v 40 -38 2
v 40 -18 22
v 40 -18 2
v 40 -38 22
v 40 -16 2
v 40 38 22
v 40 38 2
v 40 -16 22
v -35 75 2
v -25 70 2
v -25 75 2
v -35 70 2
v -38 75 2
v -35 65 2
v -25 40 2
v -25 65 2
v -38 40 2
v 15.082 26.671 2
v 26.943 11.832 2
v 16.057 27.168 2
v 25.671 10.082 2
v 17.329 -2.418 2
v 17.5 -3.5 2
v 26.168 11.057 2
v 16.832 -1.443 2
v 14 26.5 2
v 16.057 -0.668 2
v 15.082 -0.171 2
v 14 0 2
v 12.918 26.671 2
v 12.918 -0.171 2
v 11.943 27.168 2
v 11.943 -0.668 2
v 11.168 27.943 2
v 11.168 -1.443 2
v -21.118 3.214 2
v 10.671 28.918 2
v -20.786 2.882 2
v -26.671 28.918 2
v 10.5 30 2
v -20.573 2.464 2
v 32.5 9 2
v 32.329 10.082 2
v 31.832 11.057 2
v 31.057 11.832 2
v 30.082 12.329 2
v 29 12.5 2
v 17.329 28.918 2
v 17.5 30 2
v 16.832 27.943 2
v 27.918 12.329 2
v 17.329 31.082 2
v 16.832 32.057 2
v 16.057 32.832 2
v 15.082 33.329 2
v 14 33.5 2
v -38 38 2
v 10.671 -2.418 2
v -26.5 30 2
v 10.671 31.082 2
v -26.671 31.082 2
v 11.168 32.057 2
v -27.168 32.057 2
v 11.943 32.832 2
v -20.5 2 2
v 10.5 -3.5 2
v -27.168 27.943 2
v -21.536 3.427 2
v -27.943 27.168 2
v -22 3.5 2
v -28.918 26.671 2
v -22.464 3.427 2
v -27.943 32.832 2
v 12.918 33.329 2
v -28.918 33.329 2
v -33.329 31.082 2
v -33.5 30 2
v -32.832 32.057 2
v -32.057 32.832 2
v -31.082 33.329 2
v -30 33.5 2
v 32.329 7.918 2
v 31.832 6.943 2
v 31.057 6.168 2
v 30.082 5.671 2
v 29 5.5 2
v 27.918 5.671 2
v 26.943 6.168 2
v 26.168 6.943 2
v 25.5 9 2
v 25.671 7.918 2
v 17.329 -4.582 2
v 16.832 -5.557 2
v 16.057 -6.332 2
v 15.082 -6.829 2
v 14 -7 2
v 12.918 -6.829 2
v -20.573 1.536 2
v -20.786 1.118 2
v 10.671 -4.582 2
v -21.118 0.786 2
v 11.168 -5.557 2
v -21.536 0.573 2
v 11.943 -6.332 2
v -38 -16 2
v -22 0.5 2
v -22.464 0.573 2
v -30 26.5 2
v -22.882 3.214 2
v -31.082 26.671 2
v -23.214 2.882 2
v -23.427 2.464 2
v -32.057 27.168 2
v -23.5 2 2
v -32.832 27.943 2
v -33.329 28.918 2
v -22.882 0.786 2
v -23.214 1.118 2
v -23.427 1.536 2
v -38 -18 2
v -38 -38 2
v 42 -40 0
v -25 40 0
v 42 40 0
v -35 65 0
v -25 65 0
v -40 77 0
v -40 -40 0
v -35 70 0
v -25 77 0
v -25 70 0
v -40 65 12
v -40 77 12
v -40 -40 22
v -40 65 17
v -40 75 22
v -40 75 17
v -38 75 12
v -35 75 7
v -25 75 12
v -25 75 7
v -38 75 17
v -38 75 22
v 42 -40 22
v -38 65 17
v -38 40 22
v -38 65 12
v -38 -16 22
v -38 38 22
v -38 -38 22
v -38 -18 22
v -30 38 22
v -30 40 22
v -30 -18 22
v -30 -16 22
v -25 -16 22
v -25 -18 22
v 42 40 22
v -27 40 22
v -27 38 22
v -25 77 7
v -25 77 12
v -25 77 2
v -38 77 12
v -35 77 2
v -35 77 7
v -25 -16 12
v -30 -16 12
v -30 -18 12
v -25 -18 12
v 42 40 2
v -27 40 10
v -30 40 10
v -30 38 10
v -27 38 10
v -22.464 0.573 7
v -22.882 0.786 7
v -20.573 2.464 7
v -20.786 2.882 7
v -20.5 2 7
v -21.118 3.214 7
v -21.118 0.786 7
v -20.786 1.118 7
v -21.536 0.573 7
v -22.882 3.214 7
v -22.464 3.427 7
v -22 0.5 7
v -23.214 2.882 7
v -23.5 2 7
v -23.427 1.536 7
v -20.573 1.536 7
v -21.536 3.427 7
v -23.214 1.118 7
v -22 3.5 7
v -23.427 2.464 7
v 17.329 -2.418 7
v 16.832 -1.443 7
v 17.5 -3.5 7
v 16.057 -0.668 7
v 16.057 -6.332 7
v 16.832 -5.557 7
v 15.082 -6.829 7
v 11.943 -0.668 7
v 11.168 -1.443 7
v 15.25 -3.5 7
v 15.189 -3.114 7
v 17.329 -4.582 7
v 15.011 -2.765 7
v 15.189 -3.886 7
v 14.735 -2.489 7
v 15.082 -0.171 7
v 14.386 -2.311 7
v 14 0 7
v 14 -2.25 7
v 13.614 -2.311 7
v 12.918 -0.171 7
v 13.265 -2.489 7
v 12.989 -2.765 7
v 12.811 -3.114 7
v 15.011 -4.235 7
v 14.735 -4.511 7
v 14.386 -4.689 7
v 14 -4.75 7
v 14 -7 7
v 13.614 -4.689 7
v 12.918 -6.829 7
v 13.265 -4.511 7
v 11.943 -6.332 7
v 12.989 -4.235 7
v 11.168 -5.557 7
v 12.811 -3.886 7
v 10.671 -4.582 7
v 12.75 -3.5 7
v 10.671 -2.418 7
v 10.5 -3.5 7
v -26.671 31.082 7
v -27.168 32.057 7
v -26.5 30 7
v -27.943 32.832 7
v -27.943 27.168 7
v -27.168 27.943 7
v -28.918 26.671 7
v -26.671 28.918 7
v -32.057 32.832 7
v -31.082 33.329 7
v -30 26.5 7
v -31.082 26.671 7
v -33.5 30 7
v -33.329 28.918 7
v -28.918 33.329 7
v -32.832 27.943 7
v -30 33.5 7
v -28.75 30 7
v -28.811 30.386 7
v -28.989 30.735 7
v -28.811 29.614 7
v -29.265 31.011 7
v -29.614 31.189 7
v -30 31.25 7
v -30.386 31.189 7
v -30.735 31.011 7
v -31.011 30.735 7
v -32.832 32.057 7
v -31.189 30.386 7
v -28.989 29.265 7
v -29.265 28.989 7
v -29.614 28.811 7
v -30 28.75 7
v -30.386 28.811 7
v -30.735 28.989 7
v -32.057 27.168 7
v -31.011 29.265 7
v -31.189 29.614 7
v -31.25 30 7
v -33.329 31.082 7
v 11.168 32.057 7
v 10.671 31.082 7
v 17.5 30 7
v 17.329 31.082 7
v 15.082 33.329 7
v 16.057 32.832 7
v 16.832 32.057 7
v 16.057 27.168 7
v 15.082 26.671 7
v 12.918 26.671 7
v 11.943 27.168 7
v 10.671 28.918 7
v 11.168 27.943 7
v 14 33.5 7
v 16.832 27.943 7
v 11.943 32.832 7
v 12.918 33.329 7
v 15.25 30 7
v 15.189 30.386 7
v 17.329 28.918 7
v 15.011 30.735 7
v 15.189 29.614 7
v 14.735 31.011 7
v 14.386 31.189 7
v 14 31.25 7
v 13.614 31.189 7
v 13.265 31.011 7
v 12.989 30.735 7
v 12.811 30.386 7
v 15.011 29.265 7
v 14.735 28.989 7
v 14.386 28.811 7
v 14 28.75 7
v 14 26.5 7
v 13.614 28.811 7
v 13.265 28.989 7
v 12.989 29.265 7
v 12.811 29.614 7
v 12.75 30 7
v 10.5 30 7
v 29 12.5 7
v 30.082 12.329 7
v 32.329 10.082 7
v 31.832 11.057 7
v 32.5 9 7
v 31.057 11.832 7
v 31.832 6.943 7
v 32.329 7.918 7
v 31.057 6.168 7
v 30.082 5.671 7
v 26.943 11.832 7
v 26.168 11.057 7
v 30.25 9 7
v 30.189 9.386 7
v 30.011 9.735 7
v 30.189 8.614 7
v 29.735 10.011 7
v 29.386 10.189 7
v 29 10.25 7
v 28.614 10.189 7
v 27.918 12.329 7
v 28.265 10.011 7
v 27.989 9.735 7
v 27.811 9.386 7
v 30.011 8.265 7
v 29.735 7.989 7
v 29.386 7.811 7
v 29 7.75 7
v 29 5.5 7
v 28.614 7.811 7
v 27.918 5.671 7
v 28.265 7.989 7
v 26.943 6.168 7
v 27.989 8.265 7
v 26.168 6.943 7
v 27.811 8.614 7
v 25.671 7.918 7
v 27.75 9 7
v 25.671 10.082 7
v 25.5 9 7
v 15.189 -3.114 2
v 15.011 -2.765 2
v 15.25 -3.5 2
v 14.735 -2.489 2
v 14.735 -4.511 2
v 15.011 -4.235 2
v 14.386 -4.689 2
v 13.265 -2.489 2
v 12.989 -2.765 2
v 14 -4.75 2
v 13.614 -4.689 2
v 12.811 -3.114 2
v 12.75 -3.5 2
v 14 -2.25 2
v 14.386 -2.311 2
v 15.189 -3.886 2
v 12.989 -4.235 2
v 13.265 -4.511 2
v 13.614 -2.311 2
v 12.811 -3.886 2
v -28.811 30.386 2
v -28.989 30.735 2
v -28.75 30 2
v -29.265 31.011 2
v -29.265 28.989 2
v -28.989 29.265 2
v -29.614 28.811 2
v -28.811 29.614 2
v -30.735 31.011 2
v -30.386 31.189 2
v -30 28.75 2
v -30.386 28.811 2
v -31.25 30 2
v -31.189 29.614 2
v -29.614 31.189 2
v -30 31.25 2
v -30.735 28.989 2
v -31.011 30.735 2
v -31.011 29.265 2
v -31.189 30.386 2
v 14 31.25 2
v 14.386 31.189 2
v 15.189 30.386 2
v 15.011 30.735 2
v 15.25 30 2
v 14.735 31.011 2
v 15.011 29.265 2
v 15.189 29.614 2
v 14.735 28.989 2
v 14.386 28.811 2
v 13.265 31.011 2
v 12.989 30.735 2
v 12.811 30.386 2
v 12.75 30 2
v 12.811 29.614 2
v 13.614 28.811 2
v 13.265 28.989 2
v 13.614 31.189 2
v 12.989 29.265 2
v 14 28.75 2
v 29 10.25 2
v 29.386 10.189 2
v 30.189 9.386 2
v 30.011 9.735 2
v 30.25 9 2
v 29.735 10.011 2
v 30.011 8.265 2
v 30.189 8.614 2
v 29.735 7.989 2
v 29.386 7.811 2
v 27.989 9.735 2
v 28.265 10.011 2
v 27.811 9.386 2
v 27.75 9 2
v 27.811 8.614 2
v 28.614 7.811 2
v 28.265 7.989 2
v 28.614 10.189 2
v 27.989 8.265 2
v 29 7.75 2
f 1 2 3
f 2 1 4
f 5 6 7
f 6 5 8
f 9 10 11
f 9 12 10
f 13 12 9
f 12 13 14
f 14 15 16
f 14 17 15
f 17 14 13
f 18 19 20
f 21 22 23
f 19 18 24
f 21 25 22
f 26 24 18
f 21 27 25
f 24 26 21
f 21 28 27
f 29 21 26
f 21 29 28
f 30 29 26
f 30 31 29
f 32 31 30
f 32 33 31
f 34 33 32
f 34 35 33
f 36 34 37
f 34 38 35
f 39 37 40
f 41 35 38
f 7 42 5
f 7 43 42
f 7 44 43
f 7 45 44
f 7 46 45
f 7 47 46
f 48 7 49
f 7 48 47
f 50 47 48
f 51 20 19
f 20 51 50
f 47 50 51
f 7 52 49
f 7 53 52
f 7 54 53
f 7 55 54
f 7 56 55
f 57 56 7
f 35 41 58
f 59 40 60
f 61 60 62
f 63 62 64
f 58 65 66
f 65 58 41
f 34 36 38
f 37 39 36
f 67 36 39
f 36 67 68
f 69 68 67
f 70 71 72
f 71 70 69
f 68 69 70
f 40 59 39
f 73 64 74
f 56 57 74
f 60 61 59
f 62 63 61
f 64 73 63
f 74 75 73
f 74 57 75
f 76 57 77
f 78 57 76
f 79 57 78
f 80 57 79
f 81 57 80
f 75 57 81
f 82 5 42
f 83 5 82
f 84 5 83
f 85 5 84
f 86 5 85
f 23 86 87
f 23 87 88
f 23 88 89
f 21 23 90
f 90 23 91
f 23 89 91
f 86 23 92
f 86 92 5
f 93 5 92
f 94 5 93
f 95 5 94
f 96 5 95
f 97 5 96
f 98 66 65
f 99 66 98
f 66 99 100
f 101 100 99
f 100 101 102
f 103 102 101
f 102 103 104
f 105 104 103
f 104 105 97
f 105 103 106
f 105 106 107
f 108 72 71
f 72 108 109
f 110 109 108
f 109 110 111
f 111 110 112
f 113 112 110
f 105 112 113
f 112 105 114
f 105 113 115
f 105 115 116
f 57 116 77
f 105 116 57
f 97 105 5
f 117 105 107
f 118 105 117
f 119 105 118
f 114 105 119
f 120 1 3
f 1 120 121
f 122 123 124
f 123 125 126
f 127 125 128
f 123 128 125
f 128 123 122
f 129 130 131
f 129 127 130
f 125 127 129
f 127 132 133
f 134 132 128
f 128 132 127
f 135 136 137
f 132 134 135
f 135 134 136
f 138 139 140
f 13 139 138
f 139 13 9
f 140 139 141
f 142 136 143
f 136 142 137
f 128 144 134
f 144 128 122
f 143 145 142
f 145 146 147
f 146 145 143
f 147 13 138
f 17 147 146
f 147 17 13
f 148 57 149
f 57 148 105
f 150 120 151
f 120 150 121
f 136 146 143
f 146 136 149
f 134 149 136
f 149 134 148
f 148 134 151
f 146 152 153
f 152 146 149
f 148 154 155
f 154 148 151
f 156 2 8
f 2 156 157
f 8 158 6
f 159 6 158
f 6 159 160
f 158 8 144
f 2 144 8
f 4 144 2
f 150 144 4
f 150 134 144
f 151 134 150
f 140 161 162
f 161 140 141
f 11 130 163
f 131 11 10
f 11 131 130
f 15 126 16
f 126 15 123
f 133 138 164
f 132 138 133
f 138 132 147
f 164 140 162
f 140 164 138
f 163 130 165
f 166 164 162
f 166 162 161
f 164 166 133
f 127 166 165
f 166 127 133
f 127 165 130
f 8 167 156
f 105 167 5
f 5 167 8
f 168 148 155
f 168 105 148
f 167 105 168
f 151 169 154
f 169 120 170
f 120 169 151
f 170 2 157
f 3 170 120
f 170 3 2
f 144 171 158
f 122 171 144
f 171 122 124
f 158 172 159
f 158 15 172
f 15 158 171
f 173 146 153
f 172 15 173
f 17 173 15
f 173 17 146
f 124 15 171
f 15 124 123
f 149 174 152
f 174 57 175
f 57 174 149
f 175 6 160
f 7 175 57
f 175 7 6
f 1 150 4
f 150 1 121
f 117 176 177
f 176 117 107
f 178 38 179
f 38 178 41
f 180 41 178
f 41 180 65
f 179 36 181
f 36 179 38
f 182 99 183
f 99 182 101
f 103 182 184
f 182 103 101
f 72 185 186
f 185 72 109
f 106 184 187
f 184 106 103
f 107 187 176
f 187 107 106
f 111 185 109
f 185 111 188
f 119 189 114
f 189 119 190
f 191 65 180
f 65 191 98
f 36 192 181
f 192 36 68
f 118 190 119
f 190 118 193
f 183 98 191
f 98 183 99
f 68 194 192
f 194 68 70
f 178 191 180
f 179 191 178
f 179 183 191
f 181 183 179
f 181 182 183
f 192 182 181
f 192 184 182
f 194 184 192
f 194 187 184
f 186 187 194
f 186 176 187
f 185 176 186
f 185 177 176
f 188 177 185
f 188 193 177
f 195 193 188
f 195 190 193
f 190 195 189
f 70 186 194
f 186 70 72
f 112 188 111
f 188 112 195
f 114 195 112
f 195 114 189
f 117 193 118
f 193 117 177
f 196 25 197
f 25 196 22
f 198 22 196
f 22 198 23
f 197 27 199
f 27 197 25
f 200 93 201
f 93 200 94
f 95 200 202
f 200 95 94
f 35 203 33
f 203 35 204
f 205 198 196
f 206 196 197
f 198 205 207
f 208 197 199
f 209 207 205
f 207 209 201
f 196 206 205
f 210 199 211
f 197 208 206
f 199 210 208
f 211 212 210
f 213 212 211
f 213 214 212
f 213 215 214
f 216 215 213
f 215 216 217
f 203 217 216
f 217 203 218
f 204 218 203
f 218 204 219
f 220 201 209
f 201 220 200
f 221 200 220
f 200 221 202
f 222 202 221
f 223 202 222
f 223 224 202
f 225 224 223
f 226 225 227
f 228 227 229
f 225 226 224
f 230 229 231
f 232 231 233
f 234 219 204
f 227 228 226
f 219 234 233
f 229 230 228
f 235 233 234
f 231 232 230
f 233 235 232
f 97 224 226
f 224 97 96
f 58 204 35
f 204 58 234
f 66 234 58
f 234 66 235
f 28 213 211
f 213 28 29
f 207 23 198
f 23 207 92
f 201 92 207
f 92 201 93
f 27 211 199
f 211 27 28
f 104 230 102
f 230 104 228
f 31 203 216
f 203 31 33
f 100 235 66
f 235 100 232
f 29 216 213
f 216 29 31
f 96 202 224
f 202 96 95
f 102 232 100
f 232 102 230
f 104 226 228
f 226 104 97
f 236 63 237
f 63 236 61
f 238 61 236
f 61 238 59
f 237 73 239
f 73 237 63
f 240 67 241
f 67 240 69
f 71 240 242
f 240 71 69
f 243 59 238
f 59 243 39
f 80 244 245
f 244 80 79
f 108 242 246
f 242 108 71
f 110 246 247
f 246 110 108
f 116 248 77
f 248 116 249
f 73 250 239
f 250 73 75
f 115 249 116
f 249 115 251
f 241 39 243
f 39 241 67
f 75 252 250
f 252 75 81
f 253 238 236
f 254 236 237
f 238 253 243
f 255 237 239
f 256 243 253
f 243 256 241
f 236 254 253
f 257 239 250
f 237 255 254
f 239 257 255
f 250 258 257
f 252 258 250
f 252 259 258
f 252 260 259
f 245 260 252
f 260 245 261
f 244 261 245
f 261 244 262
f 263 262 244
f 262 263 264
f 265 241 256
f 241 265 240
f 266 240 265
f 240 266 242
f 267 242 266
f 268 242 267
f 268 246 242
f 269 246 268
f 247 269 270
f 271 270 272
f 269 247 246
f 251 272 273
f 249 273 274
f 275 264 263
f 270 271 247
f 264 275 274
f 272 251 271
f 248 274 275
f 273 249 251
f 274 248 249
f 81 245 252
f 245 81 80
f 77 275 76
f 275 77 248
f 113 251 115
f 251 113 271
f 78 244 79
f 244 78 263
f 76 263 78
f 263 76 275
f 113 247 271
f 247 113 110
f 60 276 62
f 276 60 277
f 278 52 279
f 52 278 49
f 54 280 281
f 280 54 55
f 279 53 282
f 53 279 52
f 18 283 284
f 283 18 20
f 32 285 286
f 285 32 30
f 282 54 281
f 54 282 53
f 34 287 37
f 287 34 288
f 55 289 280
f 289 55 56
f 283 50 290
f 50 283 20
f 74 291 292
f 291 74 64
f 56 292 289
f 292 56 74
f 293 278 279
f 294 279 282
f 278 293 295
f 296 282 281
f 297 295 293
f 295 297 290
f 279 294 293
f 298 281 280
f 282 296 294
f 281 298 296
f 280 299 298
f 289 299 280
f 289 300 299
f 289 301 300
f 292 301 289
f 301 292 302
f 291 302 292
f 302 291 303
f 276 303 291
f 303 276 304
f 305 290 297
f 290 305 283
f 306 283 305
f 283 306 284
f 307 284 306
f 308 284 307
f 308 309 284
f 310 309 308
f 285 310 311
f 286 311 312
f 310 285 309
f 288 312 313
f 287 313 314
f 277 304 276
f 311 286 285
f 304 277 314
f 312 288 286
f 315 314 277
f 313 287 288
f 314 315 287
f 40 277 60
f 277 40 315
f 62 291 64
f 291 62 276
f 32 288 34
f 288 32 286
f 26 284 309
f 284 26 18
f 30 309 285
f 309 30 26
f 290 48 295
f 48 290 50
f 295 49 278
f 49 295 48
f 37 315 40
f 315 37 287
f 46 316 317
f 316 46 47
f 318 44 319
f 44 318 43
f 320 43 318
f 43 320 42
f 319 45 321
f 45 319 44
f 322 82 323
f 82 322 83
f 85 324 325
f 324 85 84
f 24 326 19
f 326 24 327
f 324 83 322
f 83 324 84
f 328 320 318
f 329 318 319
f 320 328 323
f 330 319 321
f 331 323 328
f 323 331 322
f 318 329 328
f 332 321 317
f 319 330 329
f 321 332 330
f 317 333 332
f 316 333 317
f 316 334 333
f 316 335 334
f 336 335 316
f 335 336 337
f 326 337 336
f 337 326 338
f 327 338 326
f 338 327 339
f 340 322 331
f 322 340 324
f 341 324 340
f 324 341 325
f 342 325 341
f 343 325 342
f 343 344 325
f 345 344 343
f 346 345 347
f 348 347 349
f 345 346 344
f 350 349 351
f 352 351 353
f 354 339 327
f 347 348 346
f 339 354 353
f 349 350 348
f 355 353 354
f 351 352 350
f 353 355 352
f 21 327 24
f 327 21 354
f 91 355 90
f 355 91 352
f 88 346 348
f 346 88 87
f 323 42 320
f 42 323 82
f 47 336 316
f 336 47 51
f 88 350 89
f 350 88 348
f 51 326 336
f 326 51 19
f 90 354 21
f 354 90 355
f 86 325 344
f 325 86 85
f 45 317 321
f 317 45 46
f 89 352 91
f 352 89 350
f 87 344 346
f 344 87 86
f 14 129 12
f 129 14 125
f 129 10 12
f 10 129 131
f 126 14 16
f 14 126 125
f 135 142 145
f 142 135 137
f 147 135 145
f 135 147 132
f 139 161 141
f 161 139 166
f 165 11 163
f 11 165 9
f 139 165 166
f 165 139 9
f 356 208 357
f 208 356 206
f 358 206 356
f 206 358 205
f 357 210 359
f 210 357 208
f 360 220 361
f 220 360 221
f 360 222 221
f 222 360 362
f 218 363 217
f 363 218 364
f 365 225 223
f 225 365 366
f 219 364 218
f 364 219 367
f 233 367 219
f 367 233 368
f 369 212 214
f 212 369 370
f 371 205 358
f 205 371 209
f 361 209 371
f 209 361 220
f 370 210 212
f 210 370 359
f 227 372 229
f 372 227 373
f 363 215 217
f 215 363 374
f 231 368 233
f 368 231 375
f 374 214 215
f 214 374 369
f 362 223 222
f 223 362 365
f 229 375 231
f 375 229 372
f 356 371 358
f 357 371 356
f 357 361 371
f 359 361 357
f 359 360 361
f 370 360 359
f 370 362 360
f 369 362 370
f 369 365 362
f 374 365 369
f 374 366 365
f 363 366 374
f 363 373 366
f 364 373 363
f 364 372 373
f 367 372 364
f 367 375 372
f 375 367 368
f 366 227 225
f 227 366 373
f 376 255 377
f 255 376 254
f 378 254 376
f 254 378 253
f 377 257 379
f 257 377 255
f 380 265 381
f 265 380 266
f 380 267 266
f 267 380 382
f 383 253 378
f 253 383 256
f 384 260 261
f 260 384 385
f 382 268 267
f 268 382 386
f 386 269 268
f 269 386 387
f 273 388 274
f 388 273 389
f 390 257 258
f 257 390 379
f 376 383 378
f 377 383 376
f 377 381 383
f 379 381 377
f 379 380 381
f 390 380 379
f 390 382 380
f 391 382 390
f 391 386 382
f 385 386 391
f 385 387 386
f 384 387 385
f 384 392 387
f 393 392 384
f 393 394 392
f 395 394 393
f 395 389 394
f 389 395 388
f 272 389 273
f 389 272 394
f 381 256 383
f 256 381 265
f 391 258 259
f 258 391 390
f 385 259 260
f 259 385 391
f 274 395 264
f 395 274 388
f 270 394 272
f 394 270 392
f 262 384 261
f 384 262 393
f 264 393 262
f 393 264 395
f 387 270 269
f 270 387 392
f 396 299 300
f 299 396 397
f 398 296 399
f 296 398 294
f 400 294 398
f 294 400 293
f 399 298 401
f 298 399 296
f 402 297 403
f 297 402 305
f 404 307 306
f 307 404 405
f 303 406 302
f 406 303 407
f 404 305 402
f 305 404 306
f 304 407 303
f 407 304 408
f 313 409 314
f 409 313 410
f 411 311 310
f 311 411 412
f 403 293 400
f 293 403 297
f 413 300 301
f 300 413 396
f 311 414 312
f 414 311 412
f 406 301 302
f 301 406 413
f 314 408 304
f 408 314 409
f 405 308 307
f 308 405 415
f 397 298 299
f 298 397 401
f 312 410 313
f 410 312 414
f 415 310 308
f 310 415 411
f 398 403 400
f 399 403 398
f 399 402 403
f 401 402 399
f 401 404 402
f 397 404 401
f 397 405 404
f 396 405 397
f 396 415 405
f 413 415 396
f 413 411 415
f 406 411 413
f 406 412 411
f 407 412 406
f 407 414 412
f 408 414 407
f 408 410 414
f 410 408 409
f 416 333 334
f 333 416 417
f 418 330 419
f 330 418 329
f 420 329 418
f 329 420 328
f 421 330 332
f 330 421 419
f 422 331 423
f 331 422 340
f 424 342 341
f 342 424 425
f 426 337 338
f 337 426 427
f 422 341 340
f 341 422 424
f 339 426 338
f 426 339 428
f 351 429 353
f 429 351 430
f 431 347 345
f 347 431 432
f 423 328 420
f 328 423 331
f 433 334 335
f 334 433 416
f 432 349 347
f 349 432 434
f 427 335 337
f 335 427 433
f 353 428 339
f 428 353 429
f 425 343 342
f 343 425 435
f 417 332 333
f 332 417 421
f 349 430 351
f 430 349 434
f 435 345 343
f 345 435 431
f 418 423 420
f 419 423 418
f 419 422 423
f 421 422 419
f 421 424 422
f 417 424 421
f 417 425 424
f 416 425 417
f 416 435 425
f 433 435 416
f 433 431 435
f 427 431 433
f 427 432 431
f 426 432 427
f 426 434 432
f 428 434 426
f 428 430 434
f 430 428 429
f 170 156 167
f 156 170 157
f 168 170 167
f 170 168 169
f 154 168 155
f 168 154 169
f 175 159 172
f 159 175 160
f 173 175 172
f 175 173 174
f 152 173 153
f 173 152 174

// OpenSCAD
//  Boitier Sonde MySensors et Passerelle v3
// du 13/7/2017
lar=80;
prof=80;
haut=22;
ep=2;

render(convexity = 10) {




difference() {

// Partie pleine
union() {


//Fond
translate([-(lar/2),-prof/2,0]){
cube(size = [lar,prof+35,ep], center = false);
}
//Parois verticales
//Gauche
translate([-(lar/2),-prof/2,0]){
cube(size = [ep,prof+35,haut], center = false);
}
//Antenne horizontale
translate([-(lar/2),prof/2+35,0]){
cube(size = [ep+13,ep,12], center = false);
}
// Batterie paroi
translate([-(lar/2),(-prof/2)+22,0]){
cube(size = [lar,ep,haut], center = false);
}
//Droite
translate([(lar/2),-prof/2,0]){
cube(size = [ep,prof,haut], center = false);
}
//Arriere
translate([-(lar/2),(prof/2)-2,0]){
cube(size = [lar,ep,haut], center = false);
}
//Avant
translate([-(lar/2),-(prof/2),0]){
cube(size = [lar,ep,haut], center = false);
}
//Bouton-pile
//translate([-(lar/2)+120,-(prof/2)+27,0]){
//cube(size = [23,2,haut], center = false);
//}

//Supportplaque  Av Gauche
translate([-(lar/2)+10+8,(prof/2)-10-28,ep]){
cylinder(h = 5, r = 1.5, $fn=20, center = false);
}
//Supportplaque AV Droite
translate([-(lar/2)+54,(prof/2)-10-33.5,ep]){
cylinder(h = 5, r = 3.5, $fn=20, center = false);
}
//Supportplaque AR Gauche pour passerelle
translate([-(lar/2)+10,(prof/2)-10,ep]){
cylinder(h = 5, r = 3.5, $fn=20, center = false);
}
//Supportplaque AR Droite
translate([-(lar/2)+54,(prof/2)-10,ep]){
cylinder(h = 5, r = 3.5, $fn=20, center = false);
}
//Support DHT22 Droite
translate([(lar/2)-11,(prof/2)-31,ep]){
cylinder(h = 5, r = 3.5, $fn=20, center = false);
}

}

// Partie Creuse

union() {

//Perforations

//Fond
translate([-(lar/2)+15,prof/2,0]){
cube(size = [lar,40,ep], center = false);
}
//Fond fente Antenne 1
translate([-(lar/2)+5,prof/2+25,0]){
cube(size = [12,5,ep], center = false);
}
//Paroi Gauche fente Antenne 2
translate([-(lar/2),prof/2+25,haut/2+1]){
cube(size = [ep,12,5], center = false);
}
//Antennefente horizontale Antenne 3
translate([-(lar/2)+ep+3,prof/2+35,ep]){
cube(size = [10,ep,5], center = false);
}

//PerfSupportplaque Gauche 
//translate([-(lar/2)+23,-(prof/2)+7,3]){
//cylinder(h = 8, r = 1.5, $fn=20, center = false);
//}
//PerfSupportplaque AV Droit
translate([-(lar/2)+54,(prof/2)-10-33.5,ep]){
cylinder(h =  8, d = 2.5, $fn=20, center = false);
}
//PerfSupportplaque AR Gauche
translate([-(lar/2)+10,(prof/2)-10,ep]){
cylinder(h =  8, d = 2.5, $fn=20, center = false);
}

//PerfSupportplaque AR Droit
translate([-(lar/2)+54,(prof/2)-10,ep]){
cylinder(h =  8, d = 2.5, $fn=20, center = false);
}
//Perf Support DHT22 Droite
translate([(lar/2)-11,(prof/2)-31,ep]){
cylinder(h = 8, d = 2.5, $fn=20, center = false);
}
//Découpes Passages Fils Cloisons
// Batterie
translate([-(lar/2)+10,-(prof/2)+22-.5,12]){
cube(size = [5,10,10], center = false);
}
// Cable nRF24
translate([-(lar/2)+10,(prof/2)-2,10]){
cube(size = [3,10,12], center = false);
}



//PerfFermetureBoitier AV Gauche
//translate([-(lar/2)+2+14-1.5,-(prof/2)+2+1.5,-.1]){
//cylinder(h = 5, r = 1.5, $fn=20, center = false);
//}
//PerfFermetureBoitier AV Droit
//translate([-(lar/2)+lar-22+1.5,-(prof/2)+2+1.5,-.1]){
//cylinder(h =  5, r = 1.5, $fn=20, center = false);
//}
//PerfFermetureBoitier AR Gauche
//translate([-(lar/2)+2+14-1.5,-(prof/2)+prof-3.5,-.1]){
//cylinder(h =  5, r = 1.5, $fn=20, center = false);
//}
//PerfFermetureBoitier AR Droit
//translate([-(lar/2)+lar-22+1.5,-(prof/2)+prof-3.5,-.1]){
//cylinder(h =  5, r = 1.5, $fn=20, center = false);
//}
//Découpes Avant
//Audio
//translate([-(lar/2)+18+1+28-4,-(prof/2)+-.1,12]){
//cube(size = [8,3,12], center = false);
//}
//Ch1
//translate([-(lar/2)+18+1+65-5,-(prof/2)+-.1,12]){
//cube(size = [10,3,15], center = false);
//}
//Ch2
//translate([-(lar/2)+18+1+83-5,-(prof/2)+-.1,12]){
//cube(size = [10,3,15], center = false);
//}
//Bouton M/A
//translate([-(lar/2)+lar-17,-(prof/2)+-.1,10]){
//cube(size = [13,3,20], center = false);
//}
//Découpe Droite pour Pile
//translate([-(lar/2)+lar-2.1,-(prof/2)+37,3]){
//cube(size = [3,45,35], center = false);
//}
//Perfos Attache Pile1
//translate([-(lar/2)+lar-2.1,-(prof/2)+33,20]){
//rotate([0, 90,0]){
//cylinder(h =  5, r = 2, $fn=20, center = false);
//}}
//Perfos Attache Pile2
//translate([-(lar/2)+lar-2.1,-(prof/2)+prof-5,20]){
//rotate([0, 90,0]){
//cylinder(h =  5, r = 2, $fn=20, center = false);
//}}

//Découpes Passages Fils Cloisons
//Hautparleur
//translate([-(lar/2)+16-0.1,-(prof/2)+75,26]){
//cube(size = [3,10,10], center = false);
//}
//Pile
//translate([-(lar/2)+120-0.1,-(prof/2)+70,26]){
//cube(size = [3,10,10], center = false);
//}
//Bouton M/A
//translate([-(lar/2)+120-0.1,-(prof/2)+15,26]){
//cube(size = [3,10,10], center = false);
//}





}
}

}
